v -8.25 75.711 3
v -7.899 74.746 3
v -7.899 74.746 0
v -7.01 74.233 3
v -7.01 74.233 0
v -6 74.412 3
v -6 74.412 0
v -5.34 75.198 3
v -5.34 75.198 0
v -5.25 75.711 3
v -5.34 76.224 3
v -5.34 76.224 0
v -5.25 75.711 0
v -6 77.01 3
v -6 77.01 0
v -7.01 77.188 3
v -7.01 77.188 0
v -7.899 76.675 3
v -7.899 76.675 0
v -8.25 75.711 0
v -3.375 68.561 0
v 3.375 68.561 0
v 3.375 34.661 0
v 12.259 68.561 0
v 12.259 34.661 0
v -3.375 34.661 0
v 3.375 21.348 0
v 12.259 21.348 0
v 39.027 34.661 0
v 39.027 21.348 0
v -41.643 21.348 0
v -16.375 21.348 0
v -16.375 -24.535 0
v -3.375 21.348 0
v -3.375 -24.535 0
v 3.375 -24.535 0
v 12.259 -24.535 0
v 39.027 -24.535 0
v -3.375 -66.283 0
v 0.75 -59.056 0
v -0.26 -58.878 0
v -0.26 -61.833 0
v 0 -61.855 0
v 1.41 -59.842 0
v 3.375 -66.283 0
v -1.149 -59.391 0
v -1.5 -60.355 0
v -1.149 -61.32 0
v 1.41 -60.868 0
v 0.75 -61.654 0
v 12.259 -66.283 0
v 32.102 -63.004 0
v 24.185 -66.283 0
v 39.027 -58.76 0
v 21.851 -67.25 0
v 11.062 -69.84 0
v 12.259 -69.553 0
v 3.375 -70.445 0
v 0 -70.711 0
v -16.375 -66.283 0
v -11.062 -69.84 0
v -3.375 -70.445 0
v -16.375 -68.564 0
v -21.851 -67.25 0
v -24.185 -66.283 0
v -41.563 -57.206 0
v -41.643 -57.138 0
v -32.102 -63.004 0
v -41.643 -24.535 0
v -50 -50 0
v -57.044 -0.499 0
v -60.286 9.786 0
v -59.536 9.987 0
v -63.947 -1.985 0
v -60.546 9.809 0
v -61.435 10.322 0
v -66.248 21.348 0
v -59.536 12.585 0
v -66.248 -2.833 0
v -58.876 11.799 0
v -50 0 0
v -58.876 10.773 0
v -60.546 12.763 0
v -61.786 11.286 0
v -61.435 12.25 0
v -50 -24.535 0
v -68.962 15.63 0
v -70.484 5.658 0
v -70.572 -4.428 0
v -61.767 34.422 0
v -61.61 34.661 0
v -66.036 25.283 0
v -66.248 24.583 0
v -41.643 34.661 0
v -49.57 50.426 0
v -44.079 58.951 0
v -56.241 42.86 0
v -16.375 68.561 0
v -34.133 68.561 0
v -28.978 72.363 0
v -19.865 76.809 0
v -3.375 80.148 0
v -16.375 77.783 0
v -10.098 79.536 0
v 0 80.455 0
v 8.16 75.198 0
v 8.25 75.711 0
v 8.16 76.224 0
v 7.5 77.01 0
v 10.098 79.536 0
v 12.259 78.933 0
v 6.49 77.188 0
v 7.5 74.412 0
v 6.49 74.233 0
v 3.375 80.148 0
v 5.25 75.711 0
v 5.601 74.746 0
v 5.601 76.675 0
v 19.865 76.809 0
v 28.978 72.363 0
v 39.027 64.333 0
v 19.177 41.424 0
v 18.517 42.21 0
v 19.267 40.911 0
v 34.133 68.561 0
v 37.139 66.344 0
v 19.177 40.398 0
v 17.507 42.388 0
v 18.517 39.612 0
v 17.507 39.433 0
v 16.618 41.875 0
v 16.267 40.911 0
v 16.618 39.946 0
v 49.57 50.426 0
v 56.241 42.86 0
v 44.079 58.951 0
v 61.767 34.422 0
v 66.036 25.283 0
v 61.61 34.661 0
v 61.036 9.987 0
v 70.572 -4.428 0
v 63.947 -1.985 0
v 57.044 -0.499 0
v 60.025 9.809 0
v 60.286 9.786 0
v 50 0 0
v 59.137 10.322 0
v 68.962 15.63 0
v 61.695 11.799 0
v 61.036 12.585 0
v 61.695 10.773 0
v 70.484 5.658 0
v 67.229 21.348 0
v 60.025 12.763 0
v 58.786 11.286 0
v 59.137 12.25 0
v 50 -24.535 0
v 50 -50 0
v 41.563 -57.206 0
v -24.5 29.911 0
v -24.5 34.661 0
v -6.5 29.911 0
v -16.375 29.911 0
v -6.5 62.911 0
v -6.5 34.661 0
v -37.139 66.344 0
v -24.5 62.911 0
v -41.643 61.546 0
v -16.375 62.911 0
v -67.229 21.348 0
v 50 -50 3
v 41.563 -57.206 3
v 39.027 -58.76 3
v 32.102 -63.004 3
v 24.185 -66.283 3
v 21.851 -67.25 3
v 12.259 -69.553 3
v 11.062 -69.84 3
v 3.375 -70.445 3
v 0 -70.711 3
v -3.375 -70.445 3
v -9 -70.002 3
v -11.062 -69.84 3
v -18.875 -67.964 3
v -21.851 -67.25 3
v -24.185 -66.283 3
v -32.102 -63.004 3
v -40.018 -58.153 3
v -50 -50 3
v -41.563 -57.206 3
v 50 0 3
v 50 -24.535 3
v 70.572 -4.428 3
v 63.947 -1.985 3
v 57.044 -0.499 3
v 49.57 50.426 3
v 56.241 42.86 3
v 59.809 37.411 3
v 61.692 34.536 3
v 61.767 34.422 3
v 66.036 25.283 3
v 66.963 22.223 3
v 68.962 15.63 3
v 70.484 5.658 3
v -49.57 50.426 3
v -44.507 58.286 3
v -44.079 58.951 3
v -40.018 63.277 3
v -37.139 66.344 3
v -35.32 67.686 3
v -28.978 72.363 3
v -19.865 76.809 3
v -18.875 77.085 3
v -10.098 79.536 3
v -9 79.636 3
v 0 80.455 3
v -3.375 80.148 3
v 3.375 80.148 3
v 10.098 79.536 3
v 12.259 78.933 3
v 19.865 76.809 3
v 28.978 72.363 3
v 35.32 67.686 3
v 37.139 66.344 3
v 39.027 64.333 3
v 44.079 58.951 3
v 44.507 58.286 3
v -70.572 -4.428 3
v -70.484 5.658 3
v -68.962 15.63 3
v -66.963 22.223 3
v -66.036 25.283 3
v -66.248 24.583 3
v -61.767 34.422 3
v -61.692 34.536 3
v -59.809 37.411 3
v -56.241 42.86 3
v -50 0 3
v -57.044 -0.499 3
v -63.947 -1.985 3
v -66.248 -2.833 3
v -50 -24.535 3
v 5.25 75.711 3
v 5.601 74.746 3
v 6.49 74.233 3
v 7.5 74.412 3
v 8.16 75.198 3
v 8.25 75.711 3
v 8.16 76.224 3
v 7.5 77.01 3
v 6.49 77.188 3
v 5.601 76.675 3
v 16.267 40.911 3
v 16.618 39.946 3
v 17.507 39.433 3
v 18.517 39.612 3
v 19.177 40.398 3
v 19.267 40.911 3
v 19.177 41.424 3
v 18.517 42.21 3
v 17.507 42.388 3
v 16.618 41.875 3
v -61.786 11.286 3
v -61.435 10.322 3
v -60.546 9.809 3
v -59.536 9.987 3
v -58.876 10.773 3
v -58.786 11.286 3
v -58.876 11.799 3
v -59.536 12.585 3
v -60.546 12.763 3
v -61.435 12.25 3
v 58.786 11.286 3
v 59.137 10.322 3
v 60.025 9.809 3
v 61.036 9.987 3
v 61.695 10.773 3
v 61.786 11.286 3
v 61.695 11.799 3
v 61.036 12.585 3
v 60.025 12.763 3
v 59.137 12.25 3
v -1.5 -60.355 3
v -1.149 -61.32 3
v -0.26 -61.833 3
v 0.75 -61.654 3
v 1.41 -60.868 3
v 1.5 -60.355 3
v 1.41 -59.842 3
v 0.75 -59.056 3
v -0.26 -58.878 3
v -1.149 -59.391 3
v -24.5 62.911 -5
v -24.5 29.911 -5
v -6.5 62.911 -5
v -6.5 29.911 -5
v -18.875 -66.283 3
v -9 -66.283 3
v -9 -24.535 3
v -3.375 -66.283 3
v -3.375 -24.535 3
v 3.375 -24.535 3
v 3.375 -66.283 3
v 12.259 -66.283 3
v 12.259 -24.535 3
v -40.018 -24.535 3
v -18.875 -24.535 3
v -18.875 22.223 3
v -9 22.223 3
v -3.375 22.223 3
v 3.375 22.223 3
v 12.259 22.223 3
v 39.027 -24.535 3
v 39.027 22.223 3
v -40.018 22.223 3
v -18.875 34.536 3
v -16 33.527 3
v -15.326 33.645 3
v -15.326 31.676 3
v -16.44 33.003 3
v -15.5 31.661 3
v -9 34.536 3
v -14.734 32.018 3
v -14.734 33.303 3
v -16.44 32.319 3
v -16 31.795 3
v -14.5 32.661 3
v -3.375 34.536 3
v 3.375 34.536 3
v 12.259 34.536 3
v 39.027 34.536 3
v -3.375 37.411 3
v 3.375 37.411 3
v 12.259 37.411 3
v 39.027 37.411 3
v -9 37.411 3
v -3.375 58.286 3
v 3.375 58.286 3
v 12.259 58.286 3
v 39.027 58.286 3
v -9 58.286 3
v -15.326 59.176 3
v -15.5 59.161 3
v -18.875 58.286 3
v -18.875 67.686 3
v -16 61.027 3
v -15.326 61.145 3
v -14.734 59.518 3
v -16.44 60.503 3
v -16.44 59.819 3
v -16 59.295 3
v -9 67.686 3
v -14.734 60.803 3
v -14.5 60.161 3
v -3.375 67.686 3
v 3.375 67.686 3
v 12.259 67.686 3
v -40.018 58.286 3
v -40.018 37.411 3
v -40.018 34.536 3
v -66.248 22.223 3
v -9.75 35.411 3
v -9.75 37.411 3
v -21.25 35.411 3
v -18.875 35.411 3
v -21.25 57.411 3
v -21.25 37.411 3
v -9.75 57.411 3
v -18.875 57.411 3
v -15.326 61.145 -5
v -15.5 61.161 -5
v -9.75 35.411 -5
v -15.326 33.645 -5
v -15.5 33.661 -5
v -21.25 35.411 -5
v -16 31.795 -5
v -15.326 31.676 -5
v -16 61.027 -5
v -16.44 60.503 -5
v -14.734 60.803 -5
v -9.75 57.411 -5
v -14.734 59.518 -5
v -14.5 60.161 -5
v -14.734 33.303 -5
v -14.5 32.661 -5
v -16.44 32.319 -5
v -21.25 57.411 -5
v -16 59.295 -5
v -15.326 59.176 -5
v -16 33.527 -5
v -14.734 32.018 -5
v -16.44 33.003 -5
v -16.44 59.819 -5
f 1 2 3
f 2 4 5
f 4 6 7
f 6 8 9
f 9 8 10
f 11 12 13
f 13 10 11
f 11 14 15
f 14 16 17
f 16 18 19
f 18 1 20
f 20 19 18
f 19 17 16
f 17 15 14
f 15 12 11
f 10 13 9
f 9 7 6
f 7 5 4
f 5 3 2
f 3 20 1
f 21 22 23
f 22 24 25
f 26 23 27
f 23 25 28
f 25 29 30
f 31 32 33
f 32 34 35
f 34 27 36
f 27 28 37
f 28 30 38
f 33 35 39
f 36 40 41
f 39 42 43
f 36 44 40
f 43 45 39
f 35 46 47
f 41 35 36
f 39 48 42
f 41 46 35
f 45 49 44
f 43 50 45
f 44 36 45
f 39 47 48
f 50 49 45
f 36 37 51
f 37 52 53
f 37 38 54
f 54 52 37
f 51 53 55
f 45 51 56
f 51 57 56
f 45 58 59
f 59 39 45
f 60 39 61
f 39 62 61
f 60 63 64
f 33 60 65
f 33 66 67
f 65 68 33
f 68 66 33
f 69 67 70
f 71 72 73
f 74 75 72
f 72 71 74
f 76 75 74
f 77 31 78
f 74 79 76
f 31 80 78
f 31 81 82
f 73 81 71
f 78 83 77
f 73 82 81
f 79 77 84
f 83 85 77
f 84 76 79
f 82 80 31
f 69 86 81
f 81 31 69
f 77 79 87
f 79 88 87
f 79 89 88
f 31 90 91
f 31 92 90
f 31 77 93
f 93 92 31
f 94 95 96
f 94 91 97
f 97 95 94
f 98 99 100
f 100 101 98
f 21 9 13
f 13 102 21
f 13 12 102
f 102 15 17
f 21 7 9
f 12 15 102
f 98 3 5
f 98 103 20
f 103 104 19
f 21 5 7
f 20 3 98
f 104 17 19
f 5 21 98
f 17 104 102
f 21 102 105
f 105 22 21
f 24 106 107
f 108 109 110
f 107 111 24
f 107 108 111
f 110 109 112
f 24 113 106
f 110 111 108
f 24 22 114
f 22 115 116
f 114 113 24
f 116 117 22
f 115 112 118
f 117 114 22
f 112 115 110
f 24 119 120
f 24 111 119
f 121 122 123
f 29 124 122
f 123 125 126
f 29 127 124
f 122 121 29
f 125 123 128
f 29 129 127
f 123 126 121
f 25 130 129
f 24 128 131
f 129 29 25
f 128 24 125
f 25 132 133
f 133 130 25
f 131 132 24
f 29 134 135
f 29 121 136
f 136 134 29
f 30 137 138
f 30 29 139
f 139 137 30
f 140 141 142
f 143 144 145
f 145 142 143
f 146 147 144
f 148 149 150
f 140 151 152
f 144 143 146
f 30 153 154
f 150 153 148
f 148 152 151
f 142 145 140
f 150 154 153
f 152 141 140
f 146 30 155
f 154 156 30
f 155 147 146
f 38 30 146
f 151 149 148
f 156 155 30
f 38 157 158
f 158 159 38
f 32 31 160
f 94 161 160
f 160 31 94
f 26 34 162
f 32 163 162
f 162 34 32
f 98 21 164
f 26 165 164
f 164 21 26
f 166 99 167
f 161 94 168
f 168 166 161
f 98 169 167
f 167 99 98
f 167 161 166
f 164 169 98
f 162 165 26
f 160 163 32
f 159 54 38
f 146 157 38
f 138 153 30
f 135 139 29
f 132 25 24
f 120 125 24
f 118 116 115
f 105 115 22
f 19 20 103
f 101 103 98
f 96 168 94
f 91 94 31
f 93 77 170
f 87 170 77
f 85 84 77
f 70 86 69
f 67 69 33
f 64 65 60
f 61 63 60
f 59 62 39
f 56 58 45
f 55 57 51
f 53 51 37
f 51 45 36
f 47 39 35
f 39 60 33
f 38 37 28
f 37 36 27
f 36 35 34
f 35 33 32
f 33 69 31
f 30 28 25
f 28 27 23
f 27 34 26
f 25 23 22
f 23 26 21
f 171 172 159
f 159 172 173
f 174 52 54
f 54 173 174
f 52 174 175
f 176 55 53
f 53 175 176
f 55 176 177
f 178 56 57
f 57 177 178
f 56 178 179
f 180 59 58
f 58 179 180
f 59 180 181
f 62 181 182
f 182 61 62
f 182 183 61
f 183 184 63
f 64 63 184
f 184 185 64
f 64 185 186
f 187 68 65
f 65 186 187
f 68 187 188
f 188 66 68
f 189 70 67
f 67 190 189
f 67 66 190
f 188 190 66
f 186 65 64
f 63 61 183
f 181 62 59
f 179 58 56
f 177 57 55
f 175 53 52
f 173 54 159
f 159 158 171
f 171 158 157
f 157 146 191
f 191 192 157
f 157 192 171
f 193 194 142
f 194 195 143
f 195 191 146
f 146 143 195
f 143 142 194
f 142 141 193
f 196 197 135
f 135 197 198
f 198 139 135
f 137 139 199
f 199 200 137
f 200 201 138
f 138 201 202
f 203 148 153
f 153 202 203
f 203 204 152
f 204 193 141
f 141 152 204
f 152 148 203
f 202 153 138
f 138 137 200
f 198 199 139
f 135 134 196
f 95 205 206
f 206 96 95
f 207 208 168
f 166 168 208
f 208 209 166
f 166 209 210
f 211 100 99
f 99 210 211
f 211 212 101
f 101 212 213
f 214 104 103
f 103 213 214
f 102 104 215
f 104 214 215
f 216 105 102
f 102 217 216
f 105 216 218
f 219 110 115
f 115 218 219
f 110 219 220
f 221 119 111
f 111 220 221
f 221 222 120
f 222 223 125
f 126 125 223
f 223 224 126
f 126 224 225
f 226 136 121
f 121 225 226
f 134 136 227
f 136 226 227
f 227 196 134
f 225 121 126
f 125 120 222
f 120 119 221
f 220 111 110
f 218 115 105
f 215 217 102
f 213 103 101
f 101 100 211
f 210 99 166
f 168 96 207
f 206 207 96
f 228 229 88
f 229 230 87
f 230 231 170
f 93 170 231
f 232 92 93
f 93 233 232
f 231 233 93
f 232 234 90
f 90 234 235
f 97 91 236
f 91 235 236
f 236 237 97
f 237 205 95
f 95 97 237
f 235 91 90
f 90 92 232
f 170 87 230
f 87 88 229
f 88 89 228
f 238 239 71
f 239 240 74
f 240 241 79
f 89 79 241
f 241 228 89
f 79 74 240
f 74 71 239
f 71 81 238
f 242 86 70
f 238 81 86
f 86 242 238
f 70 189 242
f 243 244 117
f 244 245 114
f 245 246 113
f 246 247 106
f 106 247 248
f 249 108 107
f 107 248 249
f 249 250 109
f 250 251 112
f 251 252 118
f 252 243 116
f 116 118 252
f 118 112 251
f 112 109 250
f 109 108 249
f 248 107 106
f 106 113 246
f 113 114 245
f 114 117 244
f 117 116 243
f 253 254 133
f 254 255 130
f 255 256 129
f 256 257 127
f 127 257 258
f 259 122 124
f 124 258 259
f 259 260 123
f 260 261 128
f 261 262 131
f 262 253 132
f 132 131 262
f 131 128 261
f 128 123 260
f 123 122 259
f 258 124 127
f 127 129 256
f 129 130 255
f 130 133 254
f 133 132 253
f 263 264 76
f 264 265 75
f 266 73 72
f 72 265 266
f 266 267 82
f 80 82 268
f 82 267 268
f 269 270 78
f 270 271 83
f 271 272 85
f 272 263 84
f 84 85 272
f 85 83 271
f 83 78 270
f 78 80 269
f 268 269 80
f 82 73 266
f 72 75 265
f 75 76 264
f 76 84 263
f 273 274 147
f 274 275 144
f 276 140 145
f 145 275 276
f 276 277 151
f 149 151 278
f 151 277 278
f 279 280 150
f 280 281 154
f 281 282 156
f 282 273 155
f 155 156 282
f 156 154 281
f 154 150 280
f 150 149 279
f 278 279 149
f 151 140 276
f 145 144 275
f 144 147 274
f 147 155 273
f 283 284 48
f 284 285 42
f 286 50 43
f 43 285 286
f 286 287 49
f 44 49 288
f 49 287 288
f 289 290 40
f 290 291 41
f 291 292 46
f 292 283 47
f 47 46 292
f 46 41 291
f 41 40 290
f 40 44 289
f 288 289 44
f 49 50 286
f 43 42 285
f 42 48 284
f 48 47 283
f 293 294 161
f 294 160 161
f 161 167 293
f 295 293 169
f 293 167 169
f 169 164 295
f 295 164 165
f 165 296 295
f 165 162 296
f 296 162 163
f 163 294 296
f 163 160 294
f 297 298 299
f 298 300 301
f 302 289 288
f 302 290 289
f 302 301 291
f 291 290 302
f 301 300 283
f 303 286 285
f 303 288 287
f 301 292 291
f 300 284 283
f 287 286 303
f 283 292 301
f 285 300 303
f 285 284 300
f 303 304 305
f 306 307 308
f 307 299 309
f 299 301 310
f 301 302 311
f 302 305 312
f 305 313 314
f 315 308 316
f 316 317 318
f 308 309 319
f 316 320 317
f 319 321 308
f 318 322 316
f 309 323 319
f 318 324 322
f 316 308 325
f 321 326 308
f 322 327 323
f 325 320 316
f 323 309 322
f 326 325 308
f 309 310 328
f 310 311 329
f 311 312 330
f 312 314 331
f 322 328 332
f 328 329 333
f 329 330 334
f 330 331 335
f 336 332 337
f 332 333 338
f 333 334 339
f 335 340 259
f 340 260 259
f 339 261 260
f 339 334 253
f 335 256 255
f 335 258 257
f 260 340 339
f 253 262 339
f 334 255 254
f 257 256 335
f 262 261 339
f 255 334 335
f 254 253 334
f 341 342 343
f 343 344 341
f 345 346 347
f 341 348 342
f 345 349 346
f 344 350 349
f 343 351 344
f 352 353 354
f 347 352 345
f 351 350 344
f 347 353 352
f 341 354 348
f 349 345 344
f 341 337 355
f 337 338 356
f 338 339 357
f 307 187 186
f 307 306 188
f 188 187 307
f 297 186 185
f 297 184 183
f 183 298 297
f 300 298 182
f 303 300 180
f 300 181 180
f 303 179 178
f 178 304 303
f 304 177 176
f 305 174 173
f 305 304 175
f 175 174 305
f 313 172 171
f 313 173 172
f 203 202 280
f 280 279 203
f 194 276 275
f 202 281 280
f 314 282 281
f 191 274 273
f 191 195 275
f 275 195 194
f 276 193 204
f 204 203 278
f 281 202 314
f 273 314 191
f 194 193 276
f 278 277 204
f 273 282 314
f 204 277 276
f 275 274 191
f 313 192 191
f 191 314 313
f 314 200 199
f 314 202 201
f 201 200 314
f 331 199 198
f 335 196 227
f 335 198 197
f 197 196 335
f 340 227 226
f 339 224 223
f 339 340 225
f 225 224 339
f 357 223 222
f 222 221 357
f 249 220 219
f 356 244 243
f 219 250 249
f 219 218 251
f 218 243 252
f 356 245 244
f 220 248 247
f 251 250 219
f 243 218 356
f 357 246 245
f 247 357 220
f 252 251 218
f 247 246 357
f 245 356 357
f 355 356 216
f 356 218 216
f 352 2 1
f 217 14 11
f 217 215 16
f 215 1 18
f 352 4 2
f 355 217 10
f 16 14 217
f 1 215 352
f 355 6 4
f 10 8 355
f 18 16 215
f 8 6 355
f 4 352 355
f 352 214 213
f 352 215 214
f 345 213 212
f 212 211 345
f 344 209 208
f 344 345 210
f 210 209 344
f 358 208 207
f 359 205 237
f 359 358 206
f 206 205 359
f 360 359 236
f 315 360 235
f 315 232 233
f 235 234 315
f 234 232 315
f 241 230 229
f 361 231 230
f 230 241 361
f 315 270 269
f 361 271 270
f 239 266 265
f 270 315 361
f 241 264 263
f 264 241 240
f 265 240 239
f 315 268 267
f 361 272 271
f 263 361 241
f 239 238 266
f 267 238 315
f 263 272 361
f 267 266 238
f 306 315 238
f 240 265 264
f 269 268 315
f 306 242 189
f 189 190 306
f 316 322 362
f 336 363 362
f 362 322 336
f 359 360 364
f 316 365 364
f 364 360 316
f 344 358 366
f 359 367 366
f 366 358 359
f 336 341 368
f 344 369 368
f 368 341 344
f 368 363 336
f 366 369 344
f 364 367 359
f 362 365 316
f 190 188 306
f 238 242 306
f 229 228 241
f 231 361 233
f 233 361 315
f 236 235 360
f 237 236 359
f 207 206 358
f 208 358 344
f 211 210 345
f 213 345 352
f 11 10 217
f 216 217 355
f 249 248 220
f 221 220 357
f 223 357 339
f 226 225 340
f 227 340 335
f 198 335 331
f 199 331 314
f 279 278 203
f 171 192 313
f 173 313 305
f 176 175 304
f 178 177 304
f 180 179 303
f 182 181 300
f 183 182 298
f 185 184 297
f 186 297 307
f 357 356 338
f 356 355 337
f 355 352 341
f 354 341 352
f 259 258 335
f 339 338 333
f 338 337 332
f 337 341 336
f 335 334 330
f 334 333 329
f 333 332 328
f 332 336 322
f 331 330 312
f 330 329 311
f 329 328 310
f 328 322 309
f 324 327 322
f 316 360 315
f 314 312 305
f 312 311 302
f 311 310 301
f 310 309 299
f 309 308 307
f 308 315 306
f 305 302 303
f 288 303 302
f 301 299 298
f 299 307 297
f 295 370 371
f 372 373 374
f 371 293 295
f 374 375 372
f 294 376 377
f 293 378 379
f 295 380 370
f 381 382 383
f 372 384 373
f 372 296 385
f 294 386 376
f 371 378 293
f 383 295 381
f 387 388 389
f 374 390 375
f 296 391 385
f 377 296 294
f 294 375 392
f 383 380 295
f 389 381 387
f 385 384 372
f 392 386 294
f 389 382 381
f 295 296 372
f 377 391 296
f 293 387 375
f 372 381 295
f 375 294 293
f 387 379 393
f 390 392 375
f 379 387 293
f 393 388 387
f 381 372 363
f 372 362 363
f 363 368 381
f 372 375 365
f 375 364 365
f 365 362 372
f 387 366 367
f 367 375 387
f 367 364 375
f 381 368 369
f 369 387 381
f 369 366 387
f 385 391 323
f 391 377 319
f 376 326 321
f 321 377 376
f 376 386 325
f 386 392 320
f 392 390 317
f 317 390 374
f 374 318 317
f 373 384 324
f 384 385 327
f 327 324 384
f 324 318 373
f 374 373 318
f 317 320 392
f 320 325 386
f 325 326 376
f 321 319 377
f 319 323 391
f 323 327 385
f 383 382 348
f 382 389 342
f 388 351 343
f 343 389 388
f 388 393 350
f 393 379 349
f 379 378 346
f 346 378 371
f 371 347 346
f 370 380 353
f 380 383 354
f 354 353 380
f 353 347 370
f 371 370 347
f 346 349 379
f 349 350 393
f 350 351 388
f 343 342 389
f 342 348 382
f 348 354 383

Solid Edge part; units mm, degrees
sketch "Sketch1" plane through (0, 0, 0) normal (0, 0, 1) x (1, 0, 0)
  circle A0 centre (-6.75, 75.7107) radius 1.5
  circle A1 centre (6.75, 75.7107) radius 1.5
  line L0 (-9.75, 57.4107) -> (-21.25, 57.4107)
  line L1 (-21.25, 57.4107) -> (-21.25, 35.4107)
  line L2 (-21.25, 35.4107) -> (-9.75, 35.4107)
  line L3 (-9.75, 57.4107) -> (-9.75, 35.4107)
  circle A2 centre (17.7673, 40.9107) radius 1.5
  line L4 (50, -50) -> (50, 0)
  arc A3 (50, 0) -> (70.5719, -4.4281) centre (50, -50) cw
  arc A4 (70.5719, -4.4281) -> (49.5699, 50.4264) centre (0, 0) ccw
  arc A5 (-49.5699, 50.4264) -> (49.5699, 50.4264) centre (0, 24.5274) cw
  arc A6 (-70.5719, -4.4281) -> (-49.5699, 50.4264) centre (0, 0) cw
  arc A7 (-50, 0) -> (-70.5719, -4.4281) centre (-50, -50) ccw
  line L5 (-50, 0) -> (-50, -50)
  arc A8 (-50, -50) -> (50, -50) centre (0, 0) ccw
  dimension "D1" = 22
  dimension "D2" = 11.5
  dimension "D3" = 3
  dimension "D4" = 3
  dimension "D5" = 3
extrude "Protrusion1" add sketch "Sketch1" along normal blind 3
sketch "Sketch2" plane through (0, 4.8723, 0) normal (0, 0, -1) x (0, 1, 0)
  circle A0 centre (55.2883, -15.5) radius 1
  circle A1 centre (27.7883, -15.5) radius 1
  line L0 (25.0383, -6.5) -> (58.0383, -6.5)
  line L1 (58.0383, -6.5) -> (58.0383, -24.5)
  line L2 (58.0383, -24.5) -> (25.0383, -24.5)
  line L3 (25.0383, -24.5) -> (25.0383, -6.5)
extrude "ExtrudedProtrusion_2" add sketch "Sketch2" along normal blind 5
sketch "Sketch3" plane through (-15.5, 46.4107, 0) normal (0, 0, 1) x (1, 0, 0)
  line L0 (-5.75, 11) -> (5.75, 11)
  line L1 (5.75, 11) -> (5.75, -11)
  line L2 (5.75, -11) -> (-5.75, -11)
  line L3 (-5.75, -11) -> (-5.75, 10.8886)
extrude "Cutout1" cut sketch "Sketch3" against normal blind 126.1563 material side at (-15.5, 57.3607, 0)
sketch "Sketch4" plane through (0, 4.8723, 3) normal (0, 0, 1) x (0, 1, 0)
  circle A0 centre (-65.2277, 0) radius 1.5
  circle A1 centre (6.4136, 60.2859) radius 1.5
  circle A2 centre (6.4136, -60.2859) radius 1.5
extrude "ExtrudedProtrusion_3" add sketch "Sketch4" along normal blind 3
sketch "Sketch5" plane through (0, 4.8723, 0) normal (0, 0, -1) x (0, -1, 0)
  circle A0 centre (-6.4136, 60.2859) radius 1.5
  circle A1 centre (-6.4136, -60.2859) radius 1.5
extrude "ExtrudedCutout_3" cut sketch "Sketch5" against normal blind 1394.131
sketch "Sketch6" plane through (0, 4.8723, 0) normal (0, 0, -1) x (0, -1, 0)
  circle A0 centre (65.2277, 0) radius 1.5
extrude "ExtrudedCutout_4" cut sketch "Sketch6" against normal blind 239.0862
sketch "Sketch7" plane through (0, 4.8723, 3) normal (0, 0, 1) x (0, -1, 0)
  circle A0 centre (-55.2883, -15.5) radius 1
  circle A1 centre (-27.7883, -15.5) radius 1
extrude "ExtrudedCutout_5" cut sketch "Sketch7" against normal blind 54.4855
